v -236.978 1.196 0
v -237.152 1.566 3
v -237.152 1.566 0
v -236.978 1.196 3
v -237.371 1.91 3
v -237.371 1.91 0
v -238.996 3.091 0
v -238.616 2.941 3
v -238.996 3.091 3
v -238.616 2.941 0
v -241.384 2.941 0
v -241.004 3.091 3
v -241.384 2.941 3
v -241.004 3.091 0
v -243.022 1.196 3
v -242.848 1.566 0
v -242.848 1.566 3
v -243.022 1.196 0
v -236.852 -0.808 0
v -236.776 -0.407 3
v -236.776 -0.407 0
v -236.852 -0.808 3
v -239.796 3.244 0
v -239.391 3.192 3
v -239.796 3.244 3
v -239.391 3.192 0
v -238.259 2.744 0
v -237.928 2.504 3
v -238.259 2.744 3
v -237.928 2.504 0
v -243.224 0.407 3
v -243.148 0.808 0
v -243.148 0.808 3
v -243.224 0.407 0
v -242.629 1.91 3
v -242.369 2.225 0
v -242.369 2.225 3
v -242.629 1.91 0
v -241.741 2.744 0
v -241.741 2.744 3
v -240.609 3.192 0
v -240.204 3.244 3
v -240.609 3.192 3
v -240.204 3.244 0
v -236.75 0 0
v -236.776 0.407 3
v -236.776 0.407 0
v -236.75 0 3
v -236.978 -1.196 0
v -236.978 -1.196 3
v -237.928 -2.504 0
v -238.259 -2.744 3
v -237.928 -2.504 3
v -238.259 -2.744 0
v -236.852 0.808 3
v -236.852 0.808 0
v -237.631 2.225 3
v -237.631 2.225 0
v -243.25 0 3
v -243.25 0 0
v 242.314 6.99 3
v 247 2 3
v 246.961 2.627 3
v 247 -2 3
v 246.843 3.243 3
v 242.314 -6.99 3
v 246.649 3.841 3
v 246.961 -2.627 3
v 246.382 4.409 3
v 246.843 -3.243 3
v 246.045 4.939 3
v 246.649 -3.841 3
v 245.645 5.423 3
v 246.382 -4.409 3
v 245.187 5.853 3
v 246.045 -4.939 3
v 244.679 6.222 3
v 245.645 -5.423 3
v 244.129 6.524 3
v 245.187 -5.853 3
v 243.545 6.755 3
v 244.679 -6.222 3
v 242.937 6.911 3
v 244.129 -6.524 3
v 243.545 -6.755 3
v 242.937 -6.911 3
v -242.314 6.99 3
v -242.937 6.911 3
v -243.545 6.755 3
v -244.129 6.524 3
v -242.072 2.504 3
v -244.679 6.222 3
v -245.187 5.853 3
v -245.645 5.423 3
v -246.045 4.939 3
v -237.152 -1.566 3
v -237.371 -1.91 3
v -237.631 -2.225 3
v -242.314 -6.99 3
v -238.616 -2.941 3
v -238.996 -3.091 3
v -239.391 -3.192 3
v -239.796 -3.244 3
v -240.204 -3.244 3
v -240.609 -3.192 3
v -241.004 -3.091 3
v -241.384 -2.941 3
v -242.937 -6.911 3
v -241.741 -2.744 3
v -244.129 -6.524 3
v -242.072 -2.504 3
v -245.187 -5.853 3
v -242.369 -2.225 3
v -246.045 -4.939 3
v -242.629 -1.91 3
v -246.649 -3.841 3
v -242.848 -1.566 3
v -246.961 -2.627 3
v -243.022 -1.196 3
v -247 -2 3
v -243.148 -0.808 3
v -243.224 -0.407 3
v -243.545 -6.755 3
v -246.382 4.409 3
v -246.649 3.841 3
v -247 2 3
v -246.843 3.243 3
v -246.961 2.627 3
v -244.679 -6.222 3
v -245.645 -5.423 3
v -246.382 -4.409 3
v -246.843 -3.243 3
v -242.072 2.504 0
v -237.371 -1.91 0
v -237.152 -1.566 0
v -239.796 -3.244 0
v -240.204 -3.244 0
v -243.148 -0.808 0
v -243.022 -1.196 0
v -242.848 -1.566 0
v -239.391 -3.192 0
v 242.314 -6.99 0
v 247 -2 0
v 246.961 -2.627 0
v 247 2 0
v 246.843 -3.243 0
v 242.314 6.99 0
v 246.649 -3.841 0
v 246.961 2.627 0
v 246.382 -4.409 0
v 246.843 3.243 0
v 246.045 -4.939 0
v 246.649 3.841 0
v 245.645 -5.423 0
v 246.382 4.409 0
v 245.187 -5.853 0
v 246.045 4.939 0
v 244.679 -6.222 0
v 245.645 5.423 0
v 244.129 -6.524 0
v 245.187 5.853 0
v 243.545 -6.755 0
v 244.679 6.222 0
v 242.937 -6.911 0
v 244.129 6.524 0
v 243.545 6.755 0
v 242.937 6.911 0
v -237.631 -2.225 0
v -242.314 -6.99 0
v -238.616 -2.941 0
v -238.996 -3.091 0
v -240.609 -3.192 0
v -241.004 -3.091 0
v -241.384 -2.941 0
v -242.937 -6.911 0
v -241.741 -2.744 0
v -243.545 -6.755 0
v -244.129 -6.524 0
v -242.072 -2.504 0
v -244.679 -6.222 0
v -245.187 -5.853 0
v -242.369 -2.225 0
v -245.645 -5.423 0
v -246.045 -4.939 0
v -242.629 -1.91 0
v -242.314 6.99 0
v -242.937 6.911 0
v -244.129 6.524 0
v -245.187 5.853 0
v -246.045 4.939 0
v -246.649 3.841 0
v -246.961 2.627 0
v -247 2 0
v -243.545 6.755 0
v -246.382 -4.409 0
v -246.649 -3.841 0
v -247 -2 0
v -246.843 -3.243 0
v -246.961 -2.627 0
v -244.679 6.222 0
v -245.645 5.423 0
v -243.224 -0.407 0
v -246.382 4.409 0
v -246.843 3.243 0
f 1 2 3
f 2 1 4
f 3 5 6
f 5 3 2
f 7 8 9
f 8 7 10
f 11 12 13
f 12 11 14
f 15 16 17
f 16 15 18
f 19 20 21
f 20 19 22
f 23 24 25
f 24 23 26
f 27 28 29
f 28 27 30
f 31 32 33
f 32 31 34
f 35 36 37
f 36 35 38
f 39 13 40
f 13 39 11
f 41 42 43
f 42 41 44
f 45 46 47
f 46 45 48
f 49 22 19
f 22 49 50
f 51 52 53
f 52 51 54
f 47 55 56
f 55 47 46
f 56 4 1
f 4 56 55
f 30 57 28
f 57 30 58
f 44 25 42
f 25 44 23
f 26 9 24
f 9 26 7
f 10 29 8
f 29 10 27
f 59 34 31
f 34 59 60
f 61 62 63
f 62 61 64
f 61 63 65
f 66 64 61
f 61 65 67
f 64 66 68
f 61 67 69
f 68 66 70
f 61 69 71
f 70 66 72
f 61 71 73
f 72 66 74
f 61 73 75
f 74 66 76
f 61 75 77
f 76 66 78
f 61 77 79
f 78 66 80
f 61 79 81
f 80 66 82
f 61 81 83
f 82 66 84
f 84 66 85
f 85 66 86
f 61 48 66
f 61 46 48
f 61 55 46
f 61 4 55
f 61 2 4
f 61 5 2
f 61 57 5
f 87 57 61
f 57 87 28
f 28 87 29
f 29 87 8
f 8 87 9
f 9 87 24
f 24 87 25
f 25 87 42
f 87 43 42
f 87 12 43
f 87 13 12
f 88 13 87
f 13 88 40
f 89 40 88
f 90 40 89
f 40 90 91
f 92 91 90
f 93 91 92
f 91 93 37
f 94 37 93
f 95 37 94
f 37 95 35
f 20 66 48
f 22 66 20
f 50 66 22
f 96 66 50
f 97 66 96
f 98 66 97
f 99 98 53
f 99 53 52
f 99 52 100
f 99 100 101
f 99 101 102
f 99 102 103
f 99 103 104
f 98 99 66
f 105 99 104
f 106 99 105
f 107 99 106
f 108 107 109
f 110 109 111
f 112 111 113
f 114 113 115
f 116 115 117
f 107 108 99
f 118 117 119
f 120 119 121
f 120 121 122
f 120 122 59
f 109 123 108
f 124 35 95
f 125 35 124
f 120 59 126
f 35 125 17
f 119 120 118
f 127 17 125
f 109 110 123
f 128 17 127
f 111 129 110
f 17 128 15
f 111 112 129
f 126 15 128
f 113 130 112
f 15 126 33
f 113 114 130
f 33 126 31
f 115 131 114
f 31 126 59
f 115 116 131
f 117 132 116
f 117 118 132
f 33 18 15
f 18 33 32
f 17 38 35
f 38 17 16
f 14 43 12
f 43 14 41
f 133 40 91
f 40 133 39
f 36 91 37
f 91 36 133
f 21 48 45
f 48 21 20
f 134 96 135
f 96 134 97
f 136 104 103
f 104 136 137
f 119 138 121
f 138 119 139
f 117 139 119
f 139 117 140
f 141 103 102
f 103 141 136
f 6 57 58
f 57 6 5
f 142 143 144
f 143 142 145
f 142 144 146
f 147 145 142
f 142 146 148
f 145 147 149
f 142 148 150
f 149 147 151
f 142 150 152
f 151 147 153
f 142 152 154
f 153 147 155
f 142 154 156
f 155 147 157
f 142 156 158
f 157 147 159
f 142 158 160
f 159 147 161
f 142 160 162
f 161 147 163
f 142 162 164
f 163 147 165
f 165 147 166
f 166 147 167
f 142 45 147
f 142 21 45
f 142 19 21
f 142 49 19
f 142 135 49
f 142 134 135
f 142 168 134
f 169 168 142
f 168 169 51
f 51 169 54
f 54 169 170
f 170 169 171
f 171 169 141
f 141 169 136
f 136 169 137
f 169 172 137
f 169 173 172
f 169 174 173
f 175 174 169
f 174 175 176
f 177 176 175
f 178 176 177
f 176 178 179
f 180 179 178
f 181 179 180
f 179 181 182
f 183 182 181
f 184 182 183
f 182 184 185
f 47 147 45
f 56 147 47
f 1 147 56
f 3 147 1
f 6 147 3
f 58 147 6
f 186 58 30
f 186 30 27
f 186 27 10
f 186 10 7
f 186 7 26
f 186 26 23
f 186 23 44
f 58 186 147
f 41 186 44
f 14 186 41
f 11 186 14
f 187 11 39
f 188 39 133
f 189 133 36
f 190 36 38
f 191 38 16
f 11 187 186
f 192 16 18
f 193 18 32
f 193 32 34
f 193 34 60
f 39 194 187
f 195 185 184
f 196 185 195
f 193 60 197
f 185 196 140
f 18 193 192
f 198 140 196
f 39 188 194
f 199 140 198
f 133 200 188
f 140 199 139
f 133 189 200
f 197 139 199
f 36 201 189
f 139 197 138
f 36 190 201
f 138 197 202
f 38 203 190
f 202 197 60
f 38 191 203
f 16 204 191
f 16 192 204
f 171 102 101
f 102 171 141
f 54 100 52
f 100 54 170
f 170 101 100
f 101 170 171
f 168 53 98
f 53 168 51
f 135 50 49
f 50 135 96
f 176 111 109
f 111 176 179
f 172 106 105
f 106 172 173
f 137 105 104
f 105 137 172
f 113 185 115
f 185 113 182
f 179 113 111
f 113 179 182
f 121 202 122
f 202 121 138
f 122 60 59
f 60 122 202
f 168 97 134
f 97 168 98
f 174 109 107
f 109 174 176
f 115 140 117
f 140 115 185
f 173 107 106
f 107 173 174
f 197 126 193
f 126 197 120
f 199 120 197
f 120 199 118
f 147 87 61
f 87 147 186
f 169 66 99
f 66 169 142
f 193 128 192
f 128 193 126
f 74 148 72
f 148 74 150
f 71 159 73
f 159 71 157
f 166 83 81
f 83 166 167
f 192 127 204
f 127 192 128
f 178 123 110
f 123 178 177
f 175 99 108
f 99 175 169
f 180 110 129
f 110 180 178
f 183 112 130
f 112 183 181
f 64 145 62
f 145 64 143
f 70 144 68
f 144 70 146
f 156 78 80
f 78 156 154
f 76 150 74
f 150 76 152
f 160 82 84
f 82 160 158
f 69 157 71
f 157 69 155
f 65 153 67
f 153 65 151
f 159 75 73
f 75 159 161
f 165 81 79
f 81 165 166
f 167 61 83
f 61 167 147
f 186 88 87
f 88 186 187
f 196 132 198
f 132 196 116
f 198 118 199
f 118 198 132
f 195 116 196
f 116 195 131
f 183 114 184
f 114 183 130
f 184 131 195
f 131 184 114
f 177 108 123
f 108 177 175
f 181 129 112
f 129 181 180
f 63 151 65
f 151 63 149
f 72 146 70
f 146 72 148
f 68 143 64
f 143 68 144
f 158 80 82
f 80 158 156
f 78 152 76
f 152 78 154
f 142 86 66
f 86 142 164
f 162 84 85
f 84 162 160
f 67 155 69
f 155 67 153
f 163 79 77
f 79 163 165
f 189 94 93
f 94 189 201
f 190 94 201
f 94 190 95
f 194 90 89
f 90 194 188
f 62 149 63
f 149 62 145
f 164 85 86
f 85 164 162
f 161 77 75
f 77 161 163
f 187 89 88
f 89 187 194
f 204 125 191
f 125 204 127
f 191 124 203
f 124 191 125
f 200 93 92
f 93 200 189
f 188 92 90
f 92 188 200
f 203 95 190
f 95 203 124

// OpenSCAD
$fn = 50;


difference() {
	union() {
		hull() {
			translate(v = [-242.0000000000, 2.0000000000, 0]) {
				cylinder(h = 3, r = 5);
			}
			translate(v = [242.0000000000, 2.0000000000, 0]) {
				cylinder(h = 3, r = 5);
			}
			translate(v = [-242.0000000000, -2.0000000000, 0]) {
				cylinder(h = 3, r = 5);
			}
			translate(v = [242.0000000000, -2.0000000000, 0]) {
				cylinder(h = 3, r = 5);
			}
		}
	}
	union() {
		translate(v = [-240.0000000000, 0.0000000000, 0]) {
			cylinder(h = 3, r = 3.2500000000);
		}
		translate(v = [-240.0000000000, 0.0000000000, 0]) {
			cylinder(h = 3, r = 1.8000000000);
		}
		translate(v = [-240.0000000000, 0.0000000000, 0]) {
			cylinder(h = 3, r = 1.8000000000);
		}
		translate(v = [-240.0000000000, 0.0000000000, 0]) {
			cylinder(h = 3, r = 1.8000000000);
		}
	}
}
